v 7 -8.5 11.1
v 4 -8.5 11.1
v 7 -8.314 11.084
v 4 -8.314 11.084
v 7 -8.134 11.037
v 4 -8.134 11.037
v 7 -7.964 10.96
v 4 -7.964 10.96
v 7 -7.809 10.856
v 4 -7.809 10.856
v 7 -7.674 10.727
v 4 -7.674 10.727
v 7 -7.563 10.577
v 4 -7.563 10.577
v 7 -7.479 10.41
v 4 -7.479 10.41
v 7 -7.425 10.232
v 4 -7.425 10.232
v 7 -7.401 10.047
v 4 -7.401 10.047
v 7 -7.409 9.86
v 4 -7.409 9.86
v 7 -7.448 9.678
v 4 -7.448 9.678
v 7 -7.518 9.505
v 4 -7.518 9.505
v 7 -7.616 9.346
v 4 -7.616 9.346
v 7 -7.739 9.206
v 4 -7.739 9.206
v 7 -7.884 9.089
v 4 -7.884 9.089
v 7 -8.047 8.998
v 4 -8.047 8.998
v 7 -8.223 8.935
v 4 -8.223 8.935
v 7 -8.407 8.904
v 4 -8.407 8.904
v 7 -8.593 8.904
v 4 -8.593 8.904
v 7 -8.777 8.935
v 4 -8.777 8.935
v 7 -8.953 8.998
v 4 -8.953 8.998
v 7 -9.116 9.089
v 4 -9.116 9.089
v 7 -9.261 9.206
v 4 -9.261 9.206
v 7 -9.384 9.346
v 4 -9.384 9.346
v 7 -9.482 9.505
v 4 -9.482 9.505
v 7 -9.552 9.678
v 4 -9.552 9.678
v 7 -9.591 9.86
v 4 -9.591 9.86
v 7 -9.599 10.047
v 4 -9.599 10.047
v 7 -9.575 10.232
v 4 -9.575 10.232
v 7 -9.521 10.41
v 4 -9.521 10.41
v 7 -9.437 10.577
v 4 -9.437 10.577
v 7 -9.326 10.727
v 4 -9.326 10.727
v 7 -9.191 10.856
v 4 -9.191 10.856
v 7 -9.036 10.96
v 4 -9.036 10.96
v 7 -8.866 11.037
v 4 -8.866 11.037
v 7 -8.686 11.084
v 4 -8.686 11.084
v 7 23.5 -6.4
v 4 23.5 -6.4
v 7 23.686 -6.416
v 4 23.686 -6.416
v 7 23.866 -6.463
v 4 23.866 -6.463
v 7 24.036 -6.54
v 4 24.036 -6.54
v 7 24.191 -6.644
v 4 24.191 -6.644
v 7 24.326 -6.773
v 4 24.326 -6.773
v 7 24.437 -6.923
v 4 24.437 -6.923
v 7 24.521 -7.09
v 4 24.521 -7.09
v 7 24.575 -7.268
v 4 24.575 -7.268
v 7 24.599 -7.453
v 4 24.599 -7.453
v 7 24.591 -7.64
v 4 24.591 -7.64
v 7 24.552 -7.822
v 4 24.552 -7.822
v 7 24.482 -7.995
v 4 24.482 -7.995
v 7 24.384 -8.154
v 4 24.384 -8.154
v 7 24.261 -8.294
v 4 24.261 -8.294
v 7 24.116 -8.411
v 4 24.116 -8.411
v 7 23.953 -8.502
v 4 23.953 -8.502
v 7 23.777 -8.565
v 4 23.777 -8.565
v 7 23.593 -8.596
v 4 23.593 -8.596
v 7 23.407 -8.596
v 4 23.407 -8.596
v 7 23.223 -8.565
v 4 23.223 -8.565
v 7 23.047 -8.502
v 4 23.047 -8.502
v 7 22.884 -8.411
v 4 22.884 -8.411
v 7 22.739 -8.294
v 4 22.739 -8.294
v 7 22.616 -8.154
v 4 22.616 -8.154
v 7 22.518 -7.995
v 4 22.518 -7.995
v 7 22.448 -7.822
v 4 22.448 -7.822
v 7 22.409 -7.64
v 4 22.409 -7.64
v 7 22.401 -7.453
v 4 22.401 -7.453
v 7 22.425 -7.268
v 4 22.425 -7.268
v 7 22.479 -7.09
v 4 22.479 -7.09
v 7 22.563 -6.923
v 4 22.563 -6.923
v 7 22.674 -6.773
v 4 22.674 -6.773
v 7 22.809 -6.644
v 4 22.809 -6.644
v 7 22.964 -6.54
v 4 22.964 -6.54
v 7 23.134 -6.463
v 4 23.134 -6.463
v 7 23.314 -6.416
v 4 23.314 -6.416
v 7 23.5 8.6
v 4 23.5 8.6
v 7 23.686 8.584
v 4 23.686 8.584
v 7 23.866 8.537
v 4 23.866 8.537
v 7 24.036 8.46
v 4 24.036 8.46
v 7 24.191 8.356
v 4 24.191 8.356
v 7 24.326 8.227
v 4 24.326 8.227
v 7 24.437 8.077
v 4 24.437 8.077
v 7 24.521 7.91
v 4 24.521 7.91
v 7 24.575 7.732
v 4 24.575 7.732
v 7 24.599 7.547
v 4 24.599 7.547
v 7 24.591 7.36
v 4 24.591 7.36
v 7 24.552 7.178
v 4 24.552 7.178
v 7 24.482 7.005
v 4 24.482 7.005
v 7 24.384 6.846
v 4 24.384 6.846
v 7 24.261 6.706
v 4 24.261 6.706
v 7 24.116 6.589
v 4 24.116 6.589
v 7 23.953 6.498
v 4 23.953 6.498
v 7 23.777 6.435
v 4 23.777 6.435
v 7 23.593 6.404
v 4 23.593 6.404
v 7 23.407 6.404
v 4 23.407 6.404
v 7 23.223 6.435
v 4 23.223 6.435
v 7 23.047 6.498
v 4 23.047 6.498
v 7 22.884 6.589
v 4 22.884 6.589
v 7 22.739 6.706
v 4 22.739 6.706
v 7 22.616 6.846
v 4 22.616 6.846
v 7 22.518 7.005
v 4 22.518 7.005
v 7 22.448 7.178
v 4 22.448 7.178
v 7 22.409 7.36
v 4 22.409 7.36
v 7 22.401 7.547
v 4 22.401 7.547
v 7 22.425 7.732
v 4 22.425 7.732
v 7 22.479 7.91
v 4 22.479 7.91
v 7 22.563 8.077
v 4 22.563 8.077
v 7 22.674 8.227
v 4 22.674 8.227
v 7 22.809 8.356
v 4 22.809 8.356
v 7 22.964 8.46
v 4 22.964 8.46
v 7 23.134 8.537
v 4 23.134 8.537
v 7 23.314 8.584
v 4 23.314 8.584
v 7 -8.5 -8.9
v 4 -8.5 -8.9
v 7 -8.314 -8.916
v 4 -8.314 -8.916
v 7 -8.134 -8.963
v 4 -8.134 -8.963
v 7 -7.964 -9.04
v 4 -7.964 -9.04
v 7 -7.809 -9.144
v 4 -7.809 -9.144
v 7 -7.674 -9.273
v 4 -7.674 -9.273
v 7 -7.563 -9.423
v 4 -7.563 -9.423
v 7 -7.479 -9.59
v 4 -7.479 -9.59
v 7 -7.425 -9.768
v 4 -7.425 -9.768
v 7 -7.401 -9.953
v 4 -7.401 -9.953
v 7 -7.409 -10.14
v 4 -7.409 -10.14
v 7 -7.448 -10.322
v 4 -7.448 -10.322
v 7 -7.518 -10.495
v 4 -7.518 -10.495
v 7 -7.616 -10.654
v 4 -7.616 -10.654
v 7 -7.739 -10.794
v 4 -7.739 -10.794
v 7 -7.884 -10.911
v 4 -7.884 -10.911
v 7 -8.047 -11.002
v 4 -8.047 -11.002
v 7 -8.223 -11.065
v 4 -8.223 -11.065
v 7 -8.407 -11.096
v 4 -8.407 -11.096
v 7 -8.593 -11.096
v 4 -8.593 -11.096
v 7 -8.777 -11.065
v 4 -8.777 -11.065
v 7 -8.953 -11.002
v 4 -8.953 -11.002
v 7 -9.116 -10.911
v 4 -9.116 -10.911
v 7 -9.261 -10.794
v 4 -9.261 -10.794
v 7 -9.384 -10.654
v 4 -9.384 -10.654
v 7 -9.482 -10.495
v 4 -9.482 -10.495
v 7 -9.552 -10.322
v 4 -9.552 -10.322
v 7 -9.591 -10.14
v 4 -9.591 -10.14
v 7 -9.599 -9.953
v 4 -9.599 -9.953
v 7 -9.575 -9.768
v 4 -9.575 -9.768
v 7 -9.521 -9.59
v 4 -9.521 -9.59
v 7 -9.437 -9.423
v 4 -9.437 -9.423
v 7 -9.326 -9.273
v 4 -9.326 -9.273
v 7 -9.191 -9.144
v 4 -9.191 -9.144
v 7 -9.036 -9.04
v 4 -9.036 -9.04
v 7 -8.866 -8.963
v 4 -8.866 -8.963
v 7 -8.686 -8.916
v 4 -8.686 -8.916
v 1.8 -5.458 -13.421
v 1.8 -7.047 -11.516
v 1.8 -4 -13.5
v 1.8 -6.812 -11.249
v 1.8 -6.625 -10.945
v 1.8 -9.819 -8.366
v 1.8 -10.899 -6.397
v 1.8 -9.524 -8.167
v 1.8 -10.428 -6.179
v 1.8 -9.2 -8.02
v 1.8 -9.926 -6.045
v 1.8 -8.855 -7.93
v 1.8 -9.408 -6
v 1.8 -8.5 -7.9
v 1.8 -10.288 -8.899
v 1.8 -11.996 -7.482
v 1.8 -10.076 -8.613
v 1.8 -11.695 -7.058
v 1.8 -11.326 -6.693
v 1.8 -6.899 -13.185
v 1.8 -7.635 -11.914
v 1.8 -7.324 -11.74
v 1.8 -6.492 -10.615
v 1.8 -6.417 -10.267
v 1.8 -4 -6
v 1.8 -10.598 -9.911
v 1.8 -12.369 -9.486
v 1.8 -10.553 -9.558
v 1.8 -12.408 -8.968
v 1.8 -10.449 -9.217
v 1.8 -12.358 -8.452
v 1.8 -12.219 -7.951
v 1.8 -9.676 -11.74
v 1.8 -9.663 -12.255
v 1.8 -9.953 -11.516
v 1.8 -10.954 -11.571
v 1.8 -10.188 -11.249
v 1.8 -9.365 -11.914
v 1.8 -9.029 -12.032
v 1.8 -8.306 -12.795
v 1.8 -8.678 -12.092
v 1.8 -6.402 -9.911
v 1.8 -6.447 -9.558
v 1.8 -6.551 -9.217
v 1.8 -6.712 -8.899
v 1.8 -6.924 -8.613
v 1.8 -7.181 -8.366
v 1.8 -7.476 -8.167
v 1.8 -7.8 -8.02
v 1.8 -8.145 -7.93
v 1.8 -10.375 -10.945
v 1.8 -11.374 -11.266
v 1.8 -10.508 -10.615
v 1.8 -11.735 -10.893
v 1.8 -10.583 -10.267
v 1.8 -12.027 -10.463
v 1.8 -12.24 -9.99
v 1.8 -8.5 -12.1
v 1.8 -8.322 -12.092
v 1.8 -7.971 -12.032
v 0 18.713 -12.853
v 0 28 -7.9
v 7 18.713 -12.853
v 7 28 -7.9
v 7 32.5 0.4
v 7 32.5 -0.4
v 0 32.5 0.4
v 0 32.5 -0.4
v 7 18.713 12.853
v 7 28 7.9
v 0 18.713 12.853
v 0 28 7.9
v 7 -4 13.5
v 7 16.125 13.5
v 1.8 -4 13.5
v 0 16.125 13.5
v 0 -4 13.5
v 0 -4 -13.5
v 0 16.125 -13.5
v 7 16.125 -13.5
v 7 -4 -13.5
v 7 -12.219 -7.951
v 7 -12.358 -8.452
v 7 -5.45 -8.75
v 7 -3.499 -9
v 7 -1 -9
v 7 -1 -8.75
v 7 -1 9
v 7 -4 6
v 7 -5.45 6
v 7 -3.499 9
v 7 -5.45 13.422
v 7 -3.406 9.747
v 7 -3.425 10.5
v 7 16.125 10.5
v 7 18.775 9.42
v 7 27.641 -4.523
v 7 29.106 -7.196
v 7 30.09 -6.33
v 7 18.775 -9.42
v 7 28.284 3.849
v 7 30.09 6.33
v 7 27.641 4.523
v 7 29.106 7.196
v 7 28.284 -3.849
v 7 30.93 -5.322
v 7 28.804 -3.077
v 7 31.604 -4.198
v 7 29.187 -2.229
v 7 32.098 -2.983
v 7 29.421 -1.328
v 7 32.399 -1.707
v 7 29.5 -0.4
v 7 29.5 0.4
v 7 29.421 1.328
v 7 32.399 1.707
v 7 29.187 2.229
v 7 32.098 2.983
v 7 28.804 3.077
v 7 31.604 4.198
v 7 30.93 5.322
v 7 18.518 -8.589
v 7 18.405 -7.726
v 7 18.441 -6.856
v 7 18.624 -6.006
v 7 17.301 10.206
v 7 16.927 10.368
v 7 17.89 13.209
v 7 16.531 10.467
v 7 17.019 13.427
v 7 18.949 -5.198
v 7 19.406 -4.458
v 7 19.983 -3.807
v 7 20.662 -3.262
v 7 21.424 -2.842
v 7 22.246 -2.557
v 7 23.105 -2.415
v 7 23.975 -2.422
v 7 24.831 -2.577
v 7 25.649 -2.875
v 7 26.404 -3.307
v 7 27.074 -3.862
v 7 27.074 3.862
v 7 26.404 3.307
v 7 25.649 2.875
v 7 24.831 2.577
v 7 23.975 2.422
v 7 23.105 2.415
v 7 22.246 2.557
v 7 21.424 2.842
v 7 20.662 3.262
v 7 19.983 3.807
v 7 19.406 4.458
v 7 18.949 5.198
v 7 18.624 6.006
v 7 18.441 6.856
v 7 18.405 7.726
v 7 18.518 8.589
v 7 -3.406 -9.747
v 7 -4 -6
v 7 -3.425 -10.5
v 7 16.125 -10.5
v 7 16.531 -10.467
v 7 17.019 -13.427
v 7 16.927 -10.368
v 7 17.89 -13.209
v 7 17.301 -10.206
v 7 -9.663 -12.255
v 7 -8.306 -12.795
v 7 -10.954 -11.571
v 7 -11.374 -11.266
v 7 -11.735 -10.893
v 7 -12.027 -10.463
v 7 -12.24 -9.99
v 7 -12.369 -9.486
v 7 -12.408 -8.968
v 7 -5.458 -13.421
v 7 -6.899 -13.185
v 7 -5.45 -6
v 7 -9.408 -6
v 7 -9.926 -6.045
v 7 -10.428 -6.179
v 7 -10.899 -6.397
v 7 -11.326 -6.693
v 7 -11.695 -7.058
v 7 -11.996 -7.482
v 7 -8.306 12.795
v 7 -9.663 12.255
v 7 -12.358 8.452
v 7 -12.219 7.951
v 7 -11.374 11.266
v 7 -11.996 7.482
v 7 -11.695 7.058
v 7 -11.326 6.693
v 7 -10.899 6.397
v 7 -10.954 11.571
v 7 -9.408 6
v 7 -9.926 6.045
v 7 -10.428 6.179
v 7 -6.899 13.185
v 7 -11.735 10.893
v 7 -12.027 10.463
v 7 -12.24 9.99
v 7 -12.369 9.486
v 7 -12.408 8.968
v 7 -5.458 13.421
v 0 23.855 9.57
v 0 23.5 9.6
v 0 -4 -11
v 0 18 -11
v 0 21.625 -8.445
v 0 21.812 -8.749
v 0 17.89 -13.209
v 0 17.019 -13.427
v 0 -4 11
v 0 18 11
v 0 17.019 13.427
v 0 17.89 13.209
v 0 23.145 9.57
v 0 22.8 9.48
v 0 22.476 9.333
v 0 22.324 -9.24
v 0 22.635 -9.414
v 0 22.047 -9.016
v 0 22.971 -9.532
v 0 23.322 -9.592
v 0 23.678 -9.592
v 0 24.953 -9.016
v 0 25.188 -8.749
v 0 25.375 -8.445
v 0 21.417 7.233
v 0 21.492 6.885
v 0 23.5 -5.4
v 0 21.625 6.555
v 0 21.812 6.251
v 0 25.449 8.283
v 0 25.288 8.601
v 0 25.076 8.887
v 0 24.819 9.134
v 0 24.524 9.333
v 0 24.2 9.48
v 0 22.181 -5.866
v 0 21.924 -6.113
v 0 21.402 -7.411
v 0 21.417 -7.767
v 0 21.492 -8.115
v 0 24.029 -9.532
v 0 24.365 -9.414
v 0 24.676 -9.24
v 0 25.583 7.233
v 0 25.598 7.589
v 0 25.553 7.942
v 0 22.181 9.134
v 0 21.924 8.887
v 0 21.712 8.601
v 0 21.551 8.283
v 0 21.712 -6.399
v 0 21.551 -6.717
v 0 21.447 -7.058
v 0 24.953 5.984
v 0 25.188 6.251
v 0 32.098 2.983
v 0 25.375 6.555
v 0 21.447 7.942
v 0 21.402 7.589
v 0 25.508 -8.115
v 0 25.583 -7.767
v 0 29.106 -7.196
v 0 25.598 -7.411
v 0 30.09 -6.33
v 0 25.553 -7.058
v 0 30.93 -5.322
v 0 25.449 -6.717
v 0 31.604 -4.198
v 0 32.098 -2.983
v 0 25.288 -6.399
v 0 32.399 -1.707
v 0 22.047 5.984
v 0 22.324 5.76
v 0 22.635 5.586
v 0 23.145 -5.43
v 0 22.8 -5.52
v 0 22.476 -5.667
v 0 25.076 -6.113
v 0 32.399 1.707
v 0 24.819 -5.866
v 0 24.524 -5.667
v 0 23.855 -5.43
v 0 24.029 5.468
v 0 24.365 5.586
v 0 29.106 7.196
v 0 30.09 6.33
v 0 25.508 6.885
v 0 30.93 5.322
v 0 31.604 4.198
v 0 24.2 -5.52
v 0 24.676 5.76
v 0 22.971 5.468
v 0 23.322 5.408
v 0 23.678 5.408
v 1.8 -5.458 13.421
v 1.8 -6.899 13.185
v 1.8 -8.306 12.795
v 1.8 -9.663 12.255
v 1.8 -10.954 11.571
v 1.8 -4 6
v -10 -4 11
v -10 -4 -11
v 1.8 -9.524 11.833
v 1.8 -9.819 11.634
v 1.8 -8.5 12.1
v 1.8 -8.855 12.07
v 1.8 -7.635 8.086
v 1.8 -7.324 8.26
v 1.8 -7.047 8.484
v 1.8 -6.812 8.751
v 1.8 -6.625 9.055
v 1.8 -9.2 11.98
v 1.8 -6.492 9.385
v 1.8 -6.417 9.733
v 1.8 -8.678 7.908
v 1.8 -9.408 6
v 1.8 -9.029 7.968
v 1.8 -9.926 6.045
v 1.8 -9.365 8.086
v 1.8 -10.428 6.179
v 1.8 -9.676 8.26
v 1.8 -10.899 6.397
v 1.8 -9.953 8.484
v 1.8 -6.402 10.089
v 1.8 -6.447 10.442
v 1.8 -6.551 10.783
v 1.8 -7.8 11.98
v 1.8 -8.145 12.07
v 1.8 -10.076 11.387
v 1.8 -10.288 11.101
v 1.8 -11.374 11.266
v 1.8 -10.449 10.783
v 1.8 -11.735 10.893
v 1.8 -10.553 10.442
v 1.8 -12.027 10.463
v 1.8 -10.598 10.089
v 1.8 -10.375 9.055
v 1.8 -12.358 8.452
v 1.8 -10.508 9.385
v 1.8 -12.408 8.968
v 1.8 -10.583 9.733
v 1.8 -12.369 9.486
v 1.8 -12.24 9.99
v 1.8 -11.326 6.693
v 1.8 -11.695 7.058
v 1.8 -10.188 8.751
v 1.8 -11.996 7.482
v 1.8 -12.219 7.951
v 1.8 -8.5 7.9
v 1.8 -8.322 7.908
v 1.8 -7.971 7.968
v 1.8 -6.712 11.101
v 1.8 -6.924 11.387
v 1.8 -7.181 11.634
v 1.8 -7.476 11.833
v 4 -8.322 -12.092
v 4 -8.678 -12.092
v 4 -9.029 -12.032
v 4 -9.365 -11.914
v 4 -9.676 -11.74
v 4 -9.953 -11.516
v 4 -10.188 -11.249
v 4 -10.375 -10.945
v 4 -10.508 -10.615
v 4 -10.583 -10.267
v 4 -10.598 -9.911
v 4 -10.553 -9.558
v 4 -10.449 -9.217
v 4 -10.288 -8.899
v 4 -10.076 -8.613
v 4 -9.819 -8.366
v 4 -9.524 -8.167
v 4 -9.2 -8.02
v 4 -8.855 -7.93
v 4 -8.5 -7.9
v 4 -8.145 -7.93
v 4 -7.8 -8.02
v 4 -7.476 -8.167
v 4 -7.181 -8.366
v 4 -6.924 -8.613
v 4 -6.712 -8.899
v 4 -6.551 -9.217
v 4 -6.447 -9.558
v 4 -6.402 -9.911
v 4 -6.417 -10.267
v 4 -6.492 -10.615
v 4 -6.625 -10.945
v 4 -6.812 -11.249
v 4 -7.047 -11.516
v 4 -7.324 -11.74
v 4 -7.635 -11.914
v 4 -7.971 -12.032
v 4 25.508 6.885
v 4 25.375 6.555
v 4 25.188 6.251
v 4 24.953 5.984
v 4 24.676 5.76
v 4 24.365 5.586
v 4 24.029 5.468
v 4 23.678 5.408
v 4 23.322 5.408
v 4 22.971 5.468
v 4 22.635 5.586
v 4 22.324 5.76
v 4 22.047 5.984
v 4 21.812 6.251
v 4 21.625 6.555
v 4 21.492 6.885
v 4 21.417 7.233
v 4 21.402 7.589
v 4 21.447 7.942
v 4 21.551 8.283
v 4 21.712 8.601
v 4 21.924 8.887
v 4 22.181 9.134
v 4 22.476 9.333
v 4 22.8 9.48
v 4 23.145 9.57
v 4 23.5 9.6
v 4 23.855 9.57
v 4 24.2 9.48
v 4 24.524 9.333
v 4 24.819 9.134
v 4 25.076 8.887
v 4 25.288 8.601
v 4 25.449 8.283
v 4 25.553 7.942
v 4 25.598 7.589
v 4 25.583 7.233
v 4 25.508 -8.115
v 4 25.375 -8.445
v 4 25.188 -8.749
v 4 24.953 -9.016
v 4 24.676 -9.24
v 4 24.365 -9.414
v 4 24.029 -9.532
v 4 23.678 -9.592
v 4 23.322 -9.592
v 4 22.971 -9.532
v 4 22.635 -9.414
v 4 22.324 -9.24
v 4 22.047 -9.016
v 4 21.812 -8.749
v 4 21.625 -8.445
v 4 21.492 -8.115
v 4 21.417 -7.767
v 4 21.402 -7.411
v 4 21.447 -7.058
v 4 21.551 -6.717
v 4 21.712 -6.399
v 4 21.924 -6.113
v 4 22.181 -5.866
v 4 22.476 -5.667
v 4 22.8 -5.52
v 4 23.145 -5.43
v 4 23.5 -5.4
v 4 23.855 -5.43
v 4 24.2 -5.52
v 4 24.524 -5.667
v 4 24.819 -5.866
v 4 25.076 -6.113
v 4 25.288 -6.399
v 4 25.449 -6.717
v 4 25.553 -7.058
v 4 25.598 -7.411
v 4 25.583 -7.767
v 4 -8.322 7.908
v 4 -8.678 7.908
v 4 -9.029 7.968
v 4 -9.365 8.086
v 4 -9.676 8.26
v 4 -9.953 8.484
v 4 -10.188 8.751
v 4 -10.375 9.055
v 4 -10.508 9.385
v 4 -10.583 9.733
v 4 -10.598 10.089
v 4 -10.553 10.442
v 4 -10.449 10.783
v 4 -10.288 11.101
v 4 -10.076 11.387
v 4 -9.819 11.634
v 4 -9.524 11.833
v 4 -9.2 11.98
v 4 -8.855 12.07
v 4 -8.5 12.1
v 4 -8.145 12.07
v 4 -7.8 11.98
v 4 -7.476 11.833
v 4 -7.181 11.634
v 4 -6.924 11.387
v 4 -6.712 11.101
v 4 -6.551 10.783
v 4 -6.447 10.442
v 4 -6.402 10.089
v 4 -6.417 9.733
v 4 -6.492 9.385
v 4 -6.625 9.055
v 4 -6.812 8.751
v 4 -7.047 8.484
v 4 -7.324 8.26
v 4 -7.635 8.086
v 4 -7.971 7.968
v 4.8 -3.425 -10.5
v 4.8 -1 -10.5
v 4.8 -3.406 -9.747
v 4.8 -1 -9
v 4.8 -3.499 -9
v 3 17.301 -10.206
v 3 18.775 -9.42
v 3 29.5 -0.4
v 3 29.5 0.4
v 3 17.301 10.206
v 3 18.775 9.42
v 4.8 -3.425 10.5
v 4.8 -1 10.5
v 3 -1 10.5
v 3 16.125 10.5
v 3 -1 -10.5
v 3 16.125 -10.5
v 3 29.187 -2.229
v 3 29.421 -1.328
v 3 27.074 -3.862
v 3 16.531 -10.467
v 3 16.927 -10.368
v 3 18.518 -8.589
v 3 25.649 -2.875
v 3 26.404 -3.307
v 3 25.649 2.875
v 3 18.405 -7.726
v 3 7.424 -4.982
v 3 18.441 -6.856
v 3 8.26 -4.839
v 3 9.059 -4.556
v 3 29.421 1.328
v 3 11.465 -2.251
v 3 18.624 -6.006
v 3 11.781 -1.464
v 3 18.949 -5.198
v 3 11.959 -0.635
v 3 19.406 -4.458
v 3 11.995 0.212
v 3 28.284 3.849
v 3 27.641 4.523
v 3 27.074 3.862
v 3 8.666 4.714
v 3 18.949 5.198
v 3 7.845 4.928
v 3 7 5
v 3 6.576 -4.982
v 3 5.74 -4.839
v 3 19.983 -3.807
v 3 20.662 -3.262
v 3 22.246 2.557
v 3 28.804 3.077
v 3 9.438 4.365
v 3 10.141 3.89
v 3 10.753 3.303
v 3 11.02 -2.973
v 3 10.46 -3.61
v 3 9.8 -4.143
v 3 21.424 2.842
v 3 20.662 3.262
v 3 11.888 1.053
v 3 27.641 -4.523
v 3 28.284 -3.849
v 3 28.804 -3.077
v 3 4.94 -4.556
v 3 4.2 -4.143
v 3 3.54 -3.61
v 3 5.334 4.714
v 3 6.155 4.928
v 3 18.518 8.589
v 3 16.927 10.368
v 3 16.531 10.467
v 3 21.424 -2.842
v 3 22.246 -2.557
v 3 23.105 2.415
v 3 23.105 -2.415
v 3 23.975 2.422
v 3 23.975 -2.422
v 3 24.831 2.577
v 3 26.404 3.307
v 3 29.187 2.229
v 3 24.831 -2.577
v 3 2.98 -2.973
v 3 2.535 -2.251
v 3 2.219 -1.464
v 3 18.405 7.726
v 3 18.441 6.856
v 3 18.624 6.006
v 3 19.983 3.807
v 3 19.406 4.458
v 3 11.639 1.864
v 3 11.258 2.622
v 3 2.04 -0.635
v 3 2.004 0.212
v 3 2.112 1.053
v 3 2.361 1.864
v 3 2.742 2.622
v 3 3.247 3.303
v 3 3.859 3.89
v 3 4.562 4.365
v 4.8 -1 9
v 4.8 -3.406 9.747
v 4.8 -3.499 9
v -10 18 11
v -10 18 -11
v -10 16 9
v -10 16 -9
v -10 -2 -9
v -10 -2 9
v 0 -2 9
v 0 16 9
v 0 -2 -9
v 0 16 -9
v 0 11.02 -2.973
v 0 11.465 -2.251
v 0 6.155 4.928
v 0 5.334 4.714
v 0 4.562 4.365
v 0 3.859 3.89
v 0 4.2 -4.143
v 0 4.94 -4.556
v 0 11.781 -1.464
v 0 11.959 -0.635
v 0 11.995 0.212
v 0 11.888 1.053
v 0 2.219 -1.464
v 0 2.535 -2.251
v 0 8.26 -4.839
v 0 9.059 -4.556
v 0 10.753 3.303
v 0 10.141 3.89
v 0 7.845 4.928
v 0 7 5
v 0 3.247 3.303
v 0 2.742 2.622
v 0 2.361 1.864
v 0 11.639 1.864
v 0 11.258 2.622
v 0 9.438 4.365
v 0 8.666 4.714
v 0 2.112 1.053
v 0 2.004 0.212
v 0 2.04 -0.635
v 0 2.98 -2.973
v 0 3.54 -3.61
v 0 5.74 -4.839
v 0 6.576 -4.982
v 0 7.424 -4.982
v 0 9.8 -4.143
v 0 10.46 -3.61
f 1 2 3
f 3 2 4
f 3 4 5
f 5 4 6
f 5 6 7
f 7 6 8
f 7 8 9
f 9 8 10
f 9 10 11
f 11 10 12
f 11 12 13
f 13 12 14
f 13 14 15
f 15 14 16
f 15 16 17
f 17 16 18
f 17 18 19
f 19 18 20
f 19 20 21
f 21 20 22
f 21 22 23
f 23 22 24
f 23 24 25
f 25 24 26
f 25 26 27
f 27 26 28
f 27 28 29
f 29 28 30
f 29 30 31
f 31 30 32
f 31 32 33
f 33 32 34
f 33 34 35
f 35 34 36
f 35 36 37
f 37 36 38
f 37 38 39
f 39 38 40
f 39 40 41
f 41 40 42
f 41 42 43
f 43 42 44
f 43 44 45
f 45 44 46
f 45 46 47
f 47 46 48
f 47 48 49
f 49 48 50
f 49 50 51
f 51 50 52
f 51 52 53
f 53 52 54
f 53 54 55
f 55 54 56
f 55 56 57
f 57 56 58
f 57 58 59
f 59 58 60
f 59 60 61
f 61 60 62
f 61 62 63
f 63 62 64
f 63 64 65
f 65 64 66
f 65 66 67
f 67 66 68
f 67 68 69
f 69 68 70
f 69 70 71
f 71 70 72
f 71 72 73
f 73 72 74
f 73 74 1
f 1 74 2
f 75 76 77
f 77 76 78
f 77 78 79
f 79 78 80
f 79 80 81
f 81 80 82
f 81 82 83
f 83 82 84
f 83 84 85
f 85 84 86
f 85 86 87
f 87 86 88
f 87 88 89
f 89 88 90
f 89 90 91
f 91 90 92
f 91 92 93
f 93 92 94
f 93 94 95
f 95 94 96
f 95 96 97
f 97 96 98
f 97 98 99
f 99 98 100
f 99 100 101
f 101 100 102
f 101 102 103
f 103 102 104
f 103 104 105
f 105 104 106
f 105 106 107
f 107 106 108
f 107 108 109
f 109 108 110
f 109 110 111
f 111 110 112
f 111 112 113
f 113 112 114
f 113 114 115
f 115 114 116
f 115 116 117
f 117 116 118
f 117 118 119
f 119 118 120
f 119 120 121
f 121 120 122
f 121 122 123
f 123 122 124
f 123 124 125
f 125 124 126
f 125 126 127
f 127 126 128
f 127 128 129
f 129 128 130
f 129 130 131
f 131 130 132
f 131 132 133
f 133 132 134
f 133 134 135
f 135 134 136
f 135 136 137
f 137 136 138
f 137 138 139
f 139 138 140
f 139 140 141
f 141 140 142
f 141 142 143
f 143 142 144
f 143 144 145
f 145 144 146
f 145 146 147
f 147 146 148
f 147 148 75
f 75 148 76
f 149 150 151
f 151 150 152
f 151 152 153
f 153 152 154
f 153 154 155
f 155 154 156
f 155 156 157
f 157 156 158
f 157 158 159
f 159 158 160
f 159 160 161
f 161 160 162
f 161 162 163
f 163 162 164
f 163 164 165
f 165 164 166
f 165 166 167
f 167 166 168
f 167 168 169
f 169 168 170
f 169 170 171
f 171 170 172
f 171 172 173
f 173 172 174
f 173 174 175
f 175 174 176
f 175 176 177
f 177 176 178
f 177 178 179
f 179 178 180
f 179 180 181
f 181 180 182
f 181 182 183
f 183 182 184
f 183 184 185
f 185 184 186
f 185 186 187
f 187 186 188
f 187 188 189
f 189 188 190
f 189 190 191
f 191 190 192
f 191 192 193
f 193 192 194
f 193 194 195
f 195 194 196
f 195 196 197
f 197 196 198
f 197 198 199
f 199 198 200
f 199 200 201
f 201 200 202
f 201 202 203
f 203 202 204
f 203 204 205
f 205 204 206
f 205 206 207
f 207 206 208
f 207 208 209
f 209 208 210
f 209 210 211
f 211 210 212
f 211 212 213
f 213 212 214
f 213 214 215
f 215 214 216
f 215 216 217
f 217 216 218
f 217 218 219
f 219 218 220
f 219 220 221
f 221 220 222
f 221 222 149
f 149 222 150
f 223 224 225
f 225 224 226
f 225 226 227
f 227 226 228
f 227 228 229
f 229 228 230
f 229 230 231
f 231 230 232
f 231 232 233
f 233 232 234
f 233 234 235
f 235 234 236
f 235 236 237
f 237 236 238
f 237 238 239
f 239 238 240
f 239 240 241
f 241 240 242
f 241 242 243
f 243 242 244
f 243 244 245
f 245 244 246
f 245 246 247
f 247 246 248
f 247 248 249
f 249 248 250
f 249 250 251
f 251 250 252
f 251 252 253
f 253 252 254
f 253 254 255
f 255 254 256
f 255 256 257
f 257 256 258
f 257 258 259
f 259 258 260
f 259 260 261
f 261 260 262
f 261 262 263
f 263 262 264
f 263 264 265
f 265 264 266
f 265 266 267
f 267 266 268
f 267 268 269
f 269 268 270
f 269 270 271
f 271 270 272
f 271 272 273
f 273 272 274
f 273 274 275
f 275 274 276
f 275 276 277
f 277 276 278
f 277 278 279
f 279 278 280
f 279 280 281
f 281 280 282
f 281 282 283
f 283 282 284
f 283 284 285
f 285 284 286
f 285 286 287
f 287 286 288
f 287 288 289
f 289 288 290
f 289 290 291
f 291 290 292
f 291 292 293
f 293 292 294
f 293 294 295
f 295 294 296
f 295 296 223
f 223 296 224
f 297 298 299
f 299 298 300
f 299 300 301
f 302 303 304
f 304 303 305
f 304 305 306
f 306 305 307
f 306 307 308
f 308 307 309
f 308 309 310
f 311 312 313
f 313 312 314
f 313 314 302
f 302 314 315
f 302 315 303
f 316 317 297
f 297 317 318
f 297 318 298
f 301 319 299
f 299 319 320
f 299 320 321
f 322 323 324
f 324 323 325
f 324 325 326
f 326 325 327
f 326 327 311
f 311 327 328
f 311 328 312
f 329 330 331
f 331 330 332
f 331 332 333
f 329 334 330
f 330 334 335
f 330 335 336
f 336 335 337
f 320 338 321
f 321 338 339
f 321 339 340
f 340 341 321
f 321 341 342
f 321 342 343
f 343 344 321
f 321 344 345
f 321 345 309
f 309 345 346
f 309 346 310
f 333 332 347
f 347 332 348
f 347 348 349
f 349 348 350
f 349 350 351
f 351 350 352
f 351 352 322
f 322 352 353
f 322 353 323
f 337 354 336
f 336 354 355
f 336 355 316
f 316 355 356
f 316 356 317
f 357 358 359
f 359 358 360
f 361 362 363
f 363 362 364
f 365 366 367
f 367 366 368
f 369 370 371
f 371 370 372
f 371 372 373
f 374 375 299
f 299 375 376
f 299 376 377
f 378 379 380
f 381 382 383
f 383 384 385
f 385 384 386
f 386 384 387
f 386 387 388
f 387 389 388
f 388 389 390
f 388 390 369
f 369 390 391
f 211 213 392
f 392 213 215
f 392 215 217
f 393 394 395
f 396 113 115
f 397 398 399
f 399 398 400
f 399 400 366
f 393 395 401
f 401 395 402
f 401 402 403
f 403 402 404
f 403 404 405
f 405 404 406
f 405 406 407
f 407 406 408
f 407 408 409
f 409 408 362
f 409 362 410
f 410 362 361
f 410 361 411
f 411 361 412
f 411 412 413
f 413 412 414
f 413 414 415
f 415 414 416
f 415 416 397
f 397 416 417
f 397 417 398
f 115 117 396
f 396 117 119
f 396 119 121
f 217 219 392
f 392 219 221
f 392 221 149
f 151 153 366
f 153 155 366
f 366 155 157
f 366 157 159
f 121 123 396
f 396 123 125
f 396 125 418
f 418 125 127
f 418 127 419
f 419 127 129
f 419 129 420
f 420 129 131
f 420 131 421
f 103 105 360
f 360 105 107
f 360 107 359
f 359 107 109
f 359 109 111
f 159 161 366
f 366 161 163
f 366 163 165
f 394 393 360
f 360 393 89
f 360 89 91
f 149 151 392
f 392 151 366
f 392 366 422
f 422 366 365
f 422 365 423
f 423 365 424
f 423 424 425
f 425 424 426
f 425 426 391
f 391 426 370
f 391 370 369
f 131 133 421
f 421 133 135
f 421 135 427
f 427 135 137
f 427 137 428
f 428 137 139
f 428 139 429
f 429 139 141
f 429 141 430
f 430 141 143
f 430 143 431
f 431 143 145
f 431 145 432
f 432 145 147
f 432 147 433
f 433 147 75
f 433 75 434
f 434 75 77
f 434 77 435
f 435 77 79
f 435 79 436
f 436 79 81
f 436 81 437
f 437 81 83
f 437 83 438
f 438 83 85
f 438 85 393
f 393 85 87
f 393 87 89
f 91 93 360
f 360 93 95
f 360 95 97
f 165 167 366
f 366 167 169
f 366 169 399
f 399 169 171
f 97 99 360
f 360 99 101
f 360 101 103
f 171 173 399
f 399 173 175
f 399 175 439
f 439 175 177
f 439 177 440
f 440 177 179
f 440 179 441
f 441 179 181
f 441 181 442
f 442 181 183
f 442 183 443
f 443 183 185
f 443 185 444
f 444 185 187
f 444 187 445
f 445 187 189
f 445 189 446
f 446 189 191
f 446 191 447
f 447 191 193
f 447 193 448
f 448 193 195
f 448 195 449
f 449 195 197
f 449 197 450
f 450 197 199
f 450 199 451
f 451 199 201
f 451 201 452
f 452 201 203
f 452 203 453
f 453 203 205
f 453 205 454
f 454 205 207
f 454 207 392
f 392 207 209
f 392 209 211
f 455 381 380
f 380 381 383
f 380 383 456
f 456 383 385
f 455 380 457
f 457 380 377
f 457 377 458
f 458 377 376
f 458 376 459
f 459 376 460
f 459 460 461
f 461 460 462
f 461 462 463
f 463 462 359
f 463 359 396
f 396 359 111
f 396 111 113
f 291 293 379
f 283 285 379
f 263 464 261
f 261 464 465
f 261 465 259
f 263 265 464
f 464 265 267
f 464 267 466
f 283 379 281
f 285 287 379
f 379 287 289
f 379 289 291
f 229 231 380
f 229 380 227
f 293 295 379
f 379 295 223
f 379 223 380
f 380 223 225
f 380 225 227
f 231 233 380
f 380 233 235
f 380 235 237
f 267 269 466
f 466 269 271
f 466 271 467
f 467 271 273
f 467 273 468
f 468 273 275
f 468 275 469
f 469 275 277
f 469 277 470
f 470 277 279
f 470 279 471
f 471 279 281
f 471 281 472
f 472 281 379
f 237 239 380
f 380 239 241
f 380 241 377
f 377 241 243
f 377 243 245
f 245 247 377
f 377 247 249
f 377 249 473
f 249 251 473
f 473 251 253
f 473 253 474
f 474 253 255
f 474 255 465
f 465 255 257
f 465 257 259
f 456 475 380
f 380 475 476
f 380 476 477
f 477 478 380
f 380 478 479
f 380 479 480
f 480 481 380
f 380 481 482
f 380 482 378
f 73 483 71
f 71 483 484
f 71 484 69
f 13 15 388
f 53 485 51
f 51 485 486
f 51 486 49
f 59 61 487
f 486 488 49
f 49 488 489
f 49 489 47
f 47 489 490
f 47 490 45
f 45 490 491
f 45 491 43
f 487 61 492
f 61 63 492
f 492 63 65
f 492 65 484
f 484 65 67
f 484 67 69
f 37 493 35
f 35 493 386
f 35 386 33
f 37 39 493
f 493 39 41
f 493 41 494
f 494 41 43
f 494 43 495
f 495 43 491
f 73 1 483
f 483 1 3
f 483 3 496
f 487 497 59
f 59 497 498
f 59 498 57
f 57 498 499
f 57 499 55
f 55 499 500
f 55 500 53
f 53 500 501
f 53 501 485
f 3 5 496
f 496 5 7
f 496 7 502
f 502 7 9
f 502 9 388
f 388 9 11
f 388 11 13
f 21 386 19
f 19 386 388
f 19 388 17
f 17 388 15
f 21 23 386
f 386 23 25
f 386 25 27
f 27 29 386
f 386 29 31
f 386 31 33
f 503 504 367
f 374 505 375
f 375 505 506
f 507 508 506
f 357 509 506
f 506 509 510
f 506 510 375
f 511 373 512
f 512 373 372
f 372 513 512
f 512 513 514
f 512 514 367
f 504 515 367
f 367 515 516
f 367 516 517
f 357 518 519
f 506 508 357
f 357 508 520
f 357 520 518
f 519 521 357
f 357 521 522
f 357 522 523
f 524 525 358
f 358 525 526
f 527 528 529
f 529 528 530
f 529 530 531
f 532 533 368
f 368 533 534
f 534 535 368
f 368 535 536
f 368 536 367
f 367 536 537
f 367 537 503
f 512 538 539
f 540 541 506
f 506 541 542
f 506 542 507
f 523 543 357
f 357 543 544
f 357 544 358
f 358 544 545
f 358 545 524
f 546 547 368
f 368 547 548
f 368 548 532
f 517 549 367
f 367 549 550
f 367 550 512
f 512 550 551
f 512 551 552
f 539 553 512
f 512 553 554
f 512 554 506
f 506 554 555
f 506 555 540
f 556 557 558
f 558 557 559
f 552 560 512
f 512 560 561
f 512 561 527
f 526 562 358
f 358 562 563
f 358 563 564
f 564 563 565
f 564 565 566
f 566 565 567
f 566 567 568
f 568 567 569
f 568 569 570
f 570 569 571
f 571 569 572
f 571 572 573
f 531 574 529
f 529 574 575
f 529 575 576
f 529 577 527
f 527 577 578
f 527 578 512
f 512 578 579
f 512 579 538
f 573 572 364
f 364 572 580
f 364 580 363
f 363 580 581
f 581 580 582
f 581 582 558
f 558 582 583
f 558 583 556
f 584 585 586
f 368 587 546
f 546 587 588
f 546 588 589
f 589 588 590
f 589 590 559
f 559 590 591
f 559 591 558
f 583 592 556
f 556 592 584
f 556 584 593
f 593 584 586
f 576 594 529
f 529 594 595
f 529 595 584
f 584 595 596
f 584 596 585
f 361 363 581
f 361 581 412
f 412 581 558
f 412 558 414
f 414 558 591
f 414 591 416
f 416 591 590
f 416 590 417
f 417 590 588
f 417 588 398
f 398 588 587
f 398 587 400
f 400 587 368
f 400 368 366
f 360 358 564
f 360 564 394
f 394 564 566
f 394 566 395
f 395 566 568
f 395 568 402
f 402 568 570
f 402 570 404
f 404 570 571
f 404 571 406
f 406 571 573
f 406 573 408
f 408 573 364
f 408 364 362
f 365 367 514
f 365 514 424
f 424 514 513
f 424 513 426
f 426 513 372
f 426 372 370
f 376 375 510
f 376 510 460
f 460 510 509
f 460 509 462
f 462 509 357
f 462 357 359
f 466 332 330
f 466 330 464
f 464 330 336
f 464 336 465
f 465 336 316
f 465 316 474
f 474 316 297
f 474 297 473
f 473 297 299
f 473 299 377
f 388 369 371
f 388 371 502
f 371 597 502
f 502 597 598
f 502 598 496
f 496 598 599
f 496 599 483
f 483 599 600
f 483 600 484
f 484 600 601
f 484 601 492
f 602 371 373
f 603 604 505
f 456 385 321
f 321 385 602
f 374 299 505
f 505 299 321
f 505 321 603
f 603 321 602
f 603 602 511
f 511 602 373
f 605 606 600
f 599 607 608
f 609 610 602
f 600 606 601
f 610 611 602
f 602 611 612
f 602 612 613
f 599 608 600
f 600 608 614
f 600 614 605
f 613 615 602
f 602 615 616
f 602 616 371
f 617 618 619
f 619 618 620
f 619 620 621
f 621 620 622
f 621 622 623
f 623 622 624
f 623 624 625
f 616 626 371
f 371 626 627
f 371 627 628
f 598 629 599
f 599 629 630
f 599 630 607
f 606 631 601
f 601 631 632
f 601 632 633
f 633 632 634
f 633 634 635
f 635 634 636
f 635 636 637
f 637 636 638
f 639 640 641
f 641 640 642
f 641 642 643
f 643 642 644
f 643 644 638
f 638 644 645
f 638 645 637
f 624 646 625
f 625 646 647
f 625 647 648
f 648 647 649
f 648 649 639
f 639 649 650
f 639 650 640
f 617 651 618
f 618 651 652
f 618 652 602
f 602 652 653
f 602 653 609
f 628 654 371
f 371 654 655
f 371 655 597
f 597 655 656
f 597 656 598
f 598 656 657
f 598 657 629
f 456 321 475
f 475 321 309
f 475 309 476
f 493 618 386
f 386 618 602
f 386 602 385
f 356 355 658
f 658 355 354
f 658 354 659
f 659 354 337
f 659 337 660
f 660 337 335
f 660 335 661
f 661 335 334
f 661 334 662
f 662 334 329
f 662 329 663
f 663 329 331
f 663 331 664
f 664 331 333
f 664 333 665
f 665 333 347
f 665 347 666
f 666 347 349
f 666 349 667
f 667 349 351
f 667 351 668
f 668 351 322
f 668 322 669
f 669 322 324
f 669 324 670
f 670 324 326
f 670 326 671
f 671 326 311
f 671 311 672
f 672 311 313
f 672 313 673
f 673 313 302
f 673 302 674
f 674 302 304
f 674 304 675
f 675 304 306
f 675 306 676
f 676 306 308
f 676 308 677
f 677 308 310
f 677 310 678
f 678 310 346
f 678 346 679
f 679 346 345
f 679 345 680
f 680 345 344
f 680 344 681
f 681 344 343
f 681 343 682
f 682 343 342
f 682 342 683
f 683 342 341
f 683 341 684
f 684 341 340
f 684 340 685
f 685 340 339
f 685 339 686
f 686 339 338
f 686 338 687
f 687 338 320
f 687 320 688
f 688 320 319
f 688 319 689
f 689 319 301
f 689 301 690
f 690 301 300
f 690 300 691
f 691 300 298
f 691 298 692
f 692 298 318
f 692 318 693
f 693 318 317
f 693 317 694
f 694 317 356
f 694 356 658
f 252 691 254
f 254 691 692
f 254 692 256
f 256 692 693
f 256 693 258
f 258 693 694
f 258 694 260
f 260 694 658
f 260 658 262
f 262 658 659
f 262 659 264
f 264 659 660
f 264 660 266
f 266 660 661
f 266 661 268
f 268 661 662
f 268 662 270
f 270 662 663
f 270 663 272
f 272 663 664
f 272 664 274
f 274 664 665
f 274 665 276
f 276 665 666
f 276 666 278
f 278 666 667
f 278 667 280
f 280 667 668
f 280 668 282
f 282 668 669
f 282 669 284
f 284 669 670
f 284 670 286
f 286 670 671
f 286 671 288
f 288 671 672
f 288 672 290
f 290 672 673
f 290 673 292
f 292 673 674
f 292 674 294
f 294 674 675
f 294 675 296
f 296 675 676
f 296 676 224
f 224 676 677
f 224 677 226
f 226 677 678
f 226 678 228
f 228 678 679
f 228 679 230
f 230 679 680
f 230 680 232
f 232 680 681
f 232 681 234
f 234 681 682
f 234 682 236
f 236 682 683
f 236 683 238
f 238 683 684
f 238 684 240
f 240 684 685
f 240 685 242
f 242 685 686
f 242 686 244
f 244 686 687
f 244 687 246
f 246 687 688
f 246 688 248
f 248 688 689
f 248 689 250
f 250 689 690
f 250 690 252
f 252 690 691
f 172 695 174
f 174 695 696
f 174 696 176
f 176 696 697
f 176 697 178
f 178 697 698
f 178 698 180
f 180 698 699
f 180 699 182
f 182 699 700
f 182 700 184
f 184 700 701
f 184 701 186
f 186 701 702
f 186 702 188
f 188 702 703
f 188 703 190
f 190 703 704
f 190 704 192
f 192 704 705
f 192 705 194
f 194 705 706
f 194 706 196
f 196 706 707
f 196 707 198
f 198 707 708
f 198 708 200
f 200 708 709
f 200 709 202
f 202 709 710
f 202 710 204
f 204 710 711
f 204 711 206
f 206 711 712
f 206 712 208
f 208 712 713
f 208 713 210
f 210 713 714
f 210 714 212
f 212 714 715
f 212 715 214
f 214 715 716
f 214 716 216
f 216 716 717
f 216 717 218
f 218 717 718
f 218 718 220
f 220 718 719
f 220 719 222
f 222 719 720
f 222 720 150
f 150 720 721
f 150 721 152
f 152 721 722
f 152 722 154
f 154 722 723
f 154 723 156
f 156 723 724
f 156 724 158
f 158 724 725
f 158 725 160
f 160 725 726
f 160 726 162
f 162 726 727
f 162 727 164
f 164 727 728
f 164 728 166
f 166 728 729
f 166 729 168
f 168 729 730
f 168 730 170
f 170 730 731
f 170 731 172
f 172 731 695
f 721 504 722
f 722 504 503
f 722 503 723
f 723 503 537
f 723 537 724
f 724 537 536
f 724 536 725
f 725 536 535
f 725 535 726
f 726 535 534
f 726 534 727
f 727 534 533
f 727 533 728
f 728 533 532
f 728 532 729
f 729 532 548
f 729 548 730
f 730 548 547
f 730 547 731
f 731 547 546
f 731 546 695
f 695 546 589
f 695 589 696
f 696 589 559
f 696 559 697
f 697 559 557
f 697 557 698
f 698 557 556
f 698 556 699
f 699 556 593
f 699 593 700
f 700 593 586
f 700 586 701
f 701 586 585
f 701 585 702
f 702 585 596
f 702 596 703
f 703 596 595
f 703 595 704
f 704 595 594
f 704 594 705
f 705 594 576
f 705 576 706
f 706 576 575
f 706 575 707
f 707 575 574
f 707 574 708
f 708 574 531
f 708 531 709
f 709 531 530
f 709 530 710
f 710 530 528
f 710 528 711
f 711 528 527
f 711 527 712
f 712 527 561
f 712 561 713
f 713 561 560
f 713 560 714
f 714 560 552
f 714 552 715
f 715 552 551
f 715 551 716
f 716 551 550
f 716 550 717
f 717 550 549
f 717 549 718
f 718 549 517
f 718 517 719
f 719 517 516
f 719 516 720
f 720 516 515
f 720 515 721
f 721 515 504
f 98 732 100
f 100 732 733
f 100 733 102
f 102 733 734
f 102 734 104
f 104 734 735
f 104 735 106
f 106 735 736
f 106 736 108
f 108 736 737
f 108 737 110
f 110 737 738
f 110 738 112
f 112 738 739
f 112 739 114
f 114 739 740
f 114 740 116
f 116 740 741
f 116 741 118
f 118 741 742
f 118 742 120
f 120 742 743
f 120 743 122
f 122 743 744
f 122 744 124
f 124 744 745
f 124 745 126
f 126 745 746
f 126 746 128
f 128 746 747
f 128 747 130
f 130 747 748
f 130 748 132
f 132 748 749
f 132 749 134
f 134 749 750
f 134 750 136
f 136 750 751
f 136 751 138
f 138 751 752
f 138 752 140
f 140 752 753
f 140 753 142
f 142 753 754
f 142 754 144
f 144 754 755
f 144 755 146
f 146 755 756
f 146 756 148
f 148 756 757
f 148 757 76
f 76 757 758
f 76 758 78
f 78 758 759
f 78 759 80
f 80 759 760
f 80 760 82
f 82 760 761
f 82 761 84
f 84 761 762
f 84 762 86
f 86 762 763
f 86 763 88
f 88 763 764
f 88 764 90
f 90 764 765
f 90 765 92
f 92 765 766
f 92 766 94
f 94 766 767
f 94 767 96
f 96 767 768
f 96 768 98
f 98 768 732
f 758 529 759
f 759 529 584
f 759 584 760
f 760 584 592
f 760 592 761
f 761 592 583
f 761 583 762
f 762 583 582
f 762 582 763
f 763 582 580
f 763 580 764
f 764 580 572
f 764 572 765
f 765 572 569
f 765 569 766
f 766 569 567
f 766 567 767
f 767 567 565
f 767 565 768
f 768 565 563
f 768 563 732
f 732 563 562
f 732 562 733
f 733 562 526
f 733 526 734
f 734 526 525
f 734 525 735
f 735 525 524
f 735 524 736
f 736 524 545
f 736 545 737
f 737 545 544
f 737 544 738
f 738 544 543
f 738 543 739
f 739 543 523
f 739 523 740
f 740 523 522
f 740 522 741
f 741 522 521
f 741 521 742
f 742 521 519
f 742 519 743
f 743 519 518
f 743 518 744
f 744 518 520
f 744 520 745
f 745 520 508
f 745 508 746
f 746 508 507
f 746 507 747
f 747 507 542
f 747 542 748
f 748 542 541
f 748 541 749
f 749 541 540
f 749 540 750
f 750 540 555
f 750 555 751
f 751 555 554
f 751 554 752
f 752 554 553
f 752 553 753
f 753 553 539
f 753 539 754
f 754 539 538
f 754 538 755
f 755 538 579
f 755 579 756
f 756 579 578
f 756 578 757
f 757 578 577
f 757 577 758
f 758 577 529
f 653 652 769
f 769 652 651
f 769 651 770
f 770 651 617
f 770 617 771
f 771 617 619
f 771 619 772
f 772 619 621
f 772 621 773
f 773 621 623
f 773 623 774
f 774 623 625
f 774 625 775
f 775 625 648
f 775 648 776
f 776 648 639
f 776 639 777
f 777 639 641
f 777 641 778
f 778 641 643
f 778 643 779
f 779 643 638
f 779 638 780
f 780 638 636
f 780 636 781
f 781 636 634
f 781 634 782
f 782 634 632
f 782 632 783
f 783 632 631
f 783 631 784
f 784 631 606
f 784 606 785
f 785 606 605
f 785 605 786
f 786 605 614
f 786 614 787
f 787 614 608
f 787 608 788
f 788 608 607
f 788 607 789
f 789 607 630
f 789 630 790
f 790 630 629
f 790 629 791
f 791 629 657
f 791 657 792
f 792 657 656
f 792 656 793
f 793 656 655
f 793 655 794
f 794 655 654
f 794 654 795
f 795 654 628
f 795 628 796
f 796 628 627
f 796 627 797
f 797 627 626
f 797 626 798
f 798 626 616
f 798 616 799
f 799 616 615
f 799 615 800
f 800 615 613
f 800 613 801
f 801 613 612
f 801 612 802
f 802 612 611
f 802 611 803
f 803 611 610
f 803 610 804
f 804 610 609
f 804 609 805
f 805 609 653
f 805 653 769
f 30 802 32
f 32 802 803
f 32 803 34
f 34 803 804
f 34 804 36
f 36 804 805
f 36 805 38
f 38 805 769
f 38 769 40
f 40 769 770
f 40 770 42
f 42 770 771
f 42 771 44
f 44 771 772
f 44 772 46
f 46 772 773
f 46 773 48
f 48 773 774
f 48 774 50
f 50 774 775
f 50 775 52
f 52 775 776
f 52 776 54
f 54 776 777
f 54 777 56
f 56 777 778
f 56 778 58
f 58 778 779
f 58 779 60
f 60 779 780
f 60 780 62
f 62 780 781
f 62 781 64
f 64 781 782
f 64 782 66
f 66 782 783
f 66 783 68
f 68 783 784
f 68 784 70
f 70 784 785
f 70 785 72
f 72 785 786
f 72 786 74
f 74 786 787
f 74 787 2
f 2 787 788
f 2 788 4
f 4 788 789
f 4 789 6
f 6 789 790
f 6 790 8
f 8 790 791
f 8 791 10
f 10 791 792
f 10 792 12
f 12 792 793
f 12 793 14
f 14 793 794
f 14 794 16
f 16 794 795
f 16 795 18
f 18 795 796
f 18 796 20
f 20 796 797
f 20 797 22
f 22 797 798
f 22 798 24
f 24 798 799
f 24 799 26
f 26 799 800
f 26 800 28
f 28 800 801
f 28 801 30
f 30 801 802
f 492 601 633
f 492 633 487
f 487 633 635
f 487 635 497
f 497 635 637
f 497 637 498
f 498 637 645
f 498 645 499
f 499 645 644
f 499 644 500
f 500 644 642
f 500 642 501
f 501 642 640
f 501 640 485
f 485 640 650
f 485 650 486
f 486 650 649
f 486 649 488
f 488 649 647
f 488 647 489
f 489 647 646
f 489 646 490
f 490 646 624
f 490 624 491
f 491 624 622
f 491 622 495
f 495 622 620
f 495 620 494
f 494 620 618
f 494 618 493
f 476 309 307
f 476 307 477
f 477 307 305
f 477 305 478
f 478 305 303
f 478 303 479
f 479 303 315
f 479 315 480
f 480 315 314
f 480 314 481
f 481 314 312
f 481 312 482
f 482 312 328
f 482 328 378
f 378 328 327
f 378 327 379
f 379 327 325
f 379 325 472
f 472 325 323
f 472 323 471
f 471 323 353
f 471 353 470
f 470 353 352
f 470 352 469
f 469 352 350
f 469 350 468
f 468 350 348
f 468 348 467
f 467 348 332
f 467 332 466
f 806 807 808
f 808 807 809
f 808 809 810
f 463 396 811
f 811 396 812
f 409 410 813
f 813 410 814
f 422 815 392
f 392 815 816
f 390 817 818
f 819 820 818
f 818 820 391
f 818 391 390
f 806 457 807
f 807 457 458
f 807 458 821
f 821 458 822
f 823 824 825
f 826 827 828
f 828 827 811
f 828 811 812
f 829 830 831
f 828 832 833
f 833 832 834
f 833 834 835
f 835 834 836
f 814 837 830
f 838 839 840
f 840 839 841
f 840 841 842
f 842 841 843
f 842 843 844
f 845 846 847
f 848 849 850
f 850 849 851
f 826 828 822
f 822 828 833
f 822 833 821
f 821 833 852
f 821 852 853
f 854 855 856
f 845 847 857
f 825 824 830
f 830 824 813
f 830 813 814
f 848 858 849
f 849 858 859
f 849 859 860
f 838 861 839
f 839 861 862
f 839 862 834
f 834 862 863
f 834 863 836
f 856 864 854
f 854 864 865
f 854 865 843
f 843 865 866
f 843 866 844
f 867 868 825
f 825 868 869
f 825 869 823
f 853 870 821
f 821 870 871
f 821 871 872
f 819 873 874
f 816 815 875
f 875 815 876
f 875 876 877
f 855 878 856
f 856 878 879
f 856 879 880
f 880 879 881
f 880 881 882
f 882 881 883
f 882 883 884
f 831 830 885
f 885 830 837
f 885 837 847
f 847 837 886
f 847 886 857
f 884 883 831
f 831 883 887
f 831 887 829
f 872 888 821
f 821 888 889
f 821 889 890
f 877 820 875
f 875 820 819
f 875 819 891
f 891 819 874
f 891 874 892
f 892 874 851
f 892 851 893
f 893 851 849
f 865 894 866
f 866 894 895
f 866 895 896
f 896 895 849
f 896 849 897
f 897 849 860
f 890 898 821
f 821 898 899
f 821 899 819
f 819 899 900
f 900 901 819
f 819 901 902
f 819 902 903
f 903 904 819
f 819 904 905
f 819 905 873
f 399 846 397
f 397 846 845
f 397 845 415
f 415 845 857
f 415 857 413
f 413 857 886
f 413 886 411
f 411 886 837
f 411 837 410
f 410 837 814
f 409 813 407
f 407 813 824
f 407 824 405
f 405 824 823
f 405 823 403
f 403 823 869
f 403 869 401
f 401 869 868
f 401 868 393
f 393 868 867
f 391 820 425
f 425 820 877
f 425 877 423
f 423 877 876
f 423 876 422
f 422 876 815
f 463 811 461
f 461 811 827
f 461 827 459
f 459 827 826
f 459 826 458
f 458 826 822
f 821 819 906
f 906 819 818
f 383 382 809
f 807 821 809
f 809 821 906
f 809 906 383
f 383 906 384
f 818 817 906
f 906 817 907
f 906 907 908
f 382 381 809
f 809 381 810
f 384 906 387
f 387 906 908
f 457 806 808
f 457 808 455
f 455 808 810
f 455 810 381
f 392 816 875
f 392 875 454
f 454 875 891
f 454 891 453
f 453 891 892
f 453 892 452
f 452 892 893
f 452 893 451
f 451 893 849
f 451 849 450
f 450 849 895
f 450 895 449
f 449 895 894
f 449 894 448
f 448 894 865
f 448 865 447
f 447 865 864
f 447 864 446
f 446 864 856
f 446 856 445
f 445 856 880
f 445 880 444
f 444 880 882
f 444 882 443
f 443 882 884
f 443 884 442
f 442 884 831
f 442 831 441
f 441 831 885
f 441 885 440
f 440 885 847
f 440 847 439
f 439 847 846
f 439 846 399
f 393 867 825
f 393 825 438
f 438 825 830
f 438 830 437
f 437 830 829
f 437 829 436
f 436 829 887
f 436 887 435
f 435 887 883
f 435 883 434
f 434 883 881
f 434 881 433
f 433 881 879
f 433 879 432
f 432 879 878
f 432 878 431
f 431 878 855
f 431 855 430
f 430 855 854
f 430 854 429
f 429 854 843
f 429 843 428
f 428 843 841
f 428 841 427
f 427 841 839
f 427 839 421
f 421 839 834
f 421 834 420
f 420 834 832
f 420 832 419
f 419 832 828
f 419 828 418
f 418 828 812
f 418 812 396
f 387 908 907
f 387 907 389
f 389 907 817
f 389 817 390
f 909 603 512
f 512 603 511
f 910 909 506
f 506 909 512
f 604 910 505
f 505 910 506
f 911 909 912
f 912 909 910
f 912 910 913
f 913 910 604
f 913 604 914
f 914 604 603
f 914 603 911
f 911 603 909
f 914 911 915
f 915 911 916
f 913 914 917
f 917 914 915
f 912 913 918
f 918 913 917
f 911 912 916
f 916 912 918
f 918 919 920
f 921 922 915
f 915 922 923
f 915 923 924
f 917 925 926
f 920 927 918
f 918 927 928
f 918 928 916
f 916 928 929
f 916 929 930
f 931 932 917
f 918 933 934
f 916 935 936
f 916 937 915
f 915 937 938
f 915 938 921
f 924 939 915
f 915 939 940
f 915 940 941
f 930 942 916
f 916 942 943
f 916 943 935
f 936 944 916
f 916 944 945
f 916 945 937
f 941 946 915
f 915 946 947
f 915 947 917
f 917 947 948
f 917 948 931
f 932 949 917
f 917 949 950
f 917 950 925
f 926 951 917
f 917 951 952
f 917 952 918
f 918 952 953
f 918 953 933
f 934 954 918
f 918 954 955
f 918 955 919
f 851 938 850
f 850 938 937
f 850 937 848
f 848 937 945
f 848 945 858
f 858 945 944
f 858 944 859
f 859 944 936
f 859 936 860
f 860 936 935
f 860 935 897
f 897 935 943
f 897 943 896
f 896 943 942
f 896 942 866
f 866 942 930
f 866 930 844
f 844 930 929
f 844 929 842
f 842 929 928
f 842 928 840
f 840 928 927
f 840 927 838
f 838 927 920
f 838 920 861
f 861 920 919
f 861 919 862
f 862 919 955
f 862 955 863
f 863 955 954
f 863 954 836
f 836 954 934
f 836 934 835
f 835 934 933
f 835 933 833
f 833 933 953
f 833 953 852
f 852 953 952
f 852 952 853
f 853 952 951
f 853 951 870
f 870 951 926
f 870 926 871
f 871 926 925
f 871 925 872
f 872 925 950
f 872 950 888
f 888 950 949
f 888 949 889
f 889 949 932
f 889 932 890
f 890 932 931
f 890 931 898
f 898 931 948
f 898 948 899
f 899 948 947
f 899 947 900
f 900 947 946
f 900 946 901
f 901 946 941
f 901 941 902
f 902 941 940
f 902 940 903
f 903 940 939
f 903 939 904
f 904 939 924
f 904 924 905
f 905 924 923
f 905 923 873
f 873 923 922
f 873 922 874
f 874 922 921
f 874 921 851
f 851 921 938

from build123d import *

# Parameters (mm, degrees)
BOSS_EXTRUDE1_DEPTH = 7
FILLET1_R           = 8.5
FILLET2_R           = 5.5
FILLET3_R           = 13.5
SKETCH3_W           = 27
SKETCH3_H           = 13.5
CUT_EXTRUDE1_DEPTH  = 1.8
CUT_EXTRUDE5_REACH  = 37.882
SKETCH12_W          = 12
SKETCH12_H          = 13.5
CUT_EXTRUDE6_REACH  = 37.882
SKETCH13_R          = 1.1
SKETCH17_R          = 2.1
CUT_EXTRUDE14_DEPTH = 4
FILLET4_R           = 3
SHELL2_START        = 3
SHELL2_DEPTH        = 4
SHELL2_START_2      = 4.8
SHELL2_2_DEPTH      = 2.2
SKETCH18_W          = 22
SKETCH18_H          = 22
BOSS_EXTRUDE2_DEPTH = 10
SKETCH19_W          = 18
SKETCH19_H          = 18
CUT_EXTRUDE15_DEPTH = 10
SKETCH20_R          = 5
CUT_EXTRUDE16_DEPTH = 3


# Read off the part's stored shape, not the designer's step: Shell2
with BuildPart() as part:
    # Sketch2 → Boss-Extrude1 (new body)
    with BuildSketch(Plane(origin=(0, 0, 0), x_dir=(0, 0, -1), z_dir=(1, 0, 0))):
        Polygon((-13.5, -17.5), (13.5, -17.5), (13.5, 17.5), (5.5, 32.5), (-5.5, 32.5), (-13.5, 17.5), align=None)
    extrude(amount=BOSS_EXTRUDE1_DEPTH)

    # Fillet1
    fillet1_edges = [part.edges().sort_by_distance(p)[0] for p in [
        (3.5, 32.5, 5.5),
        (3.5, 32.5, -5.5),
    ]]
    fillet(fillet1_edges, radius=FILLET1_R)

    # Fillet2
    fillet2_edges = [part.edges().sort_by_distance(p)[0] for p in [
        (3.5, 17.5, -13.5),
        (3.5, 17.5, 13.5),
    ]]
    fillet(fillet2_edges, radius=FILLET2_R)

    # Fillet3
    fillet3_edges = [part.edges().sort_by_distance(p)[0] for p in [
        (3.5, -17.5, 13.5),
        (3.5, -17.5, -13.5),
    ]]
    fillet(fillet3_edges, radius=FILLET3_R - 0.0001)  # a hair under: the kernel refuses the full size

    # Sketch3 → Cut-Extrude1 (cut)
    with BuildSketch(Plane.ZY):
        with Locations((0, -10.75)):
            Rectangle(SKETCH3_W, SKETCH3_H)
    extrude(amount=-CUT_EXTRUDE1_DEPTH, mode=Mode.SUBTRACT)

    # Sketch12 → Cut-Extrude5 (cut, up to next)
    with BuildSketch(Plane(origin=(7, 0, 0), x_dir=(0, 0, -1), z_dir=(1, 0, 0)), mode=Mode.PRIVATE) as cut_extrude5_sk1:
        with Locations((0, -10.75)):
            Rectangle(SKETCH12_W, SKETCH12_H)
    cut_extrude5_tool1 = extrude(cut_extrude5_sk1.sketch, amount=-CUT_EXTRUDE5_REACH, mode=Mode.PRIVATE) & part.part
    add(cut_extrude5_tool1.solids().sort_by_distance((7, -10.75, 0))[0], mode=Mode.SUBTRACT)

    # Sketch13 → Cut-Extrude6 (cut, up to next)
    with BuildSketch(Plane.ZY, mode=Mode.PRIVATE) as cut_extrude6_sk1:
        with Locations((-7.5, 23.5)):
            Circle(SKETCH13_R)
    cut_extrude6_tool1 = extrude(cut_extrude6_sk1.sketch, amount=-CUT_EXTRUDE6_REACH, mode=Mode.PRIVATE) & part.part
    # Sketch13 → Cut-Extrude6 (cut, up to next)
    with BuildSketch(Plane.ZY, mode=Mode.PRIVATE) as cut_extrude6_sk2:
        with Locations((-10, -8.5)):
            Circle(SKETCH13_R)
    cut_extrude6_tool2 = extrude(cut_extrude6_sk2.sketch, amount=-CUT_EXTRUDE6_REACH, mode=Mode.PRIVATE) & part.part
    # Sketch13 → Cut-Extrude6 (cut, up to next)
    with BuildSketch(Plane.ZY, mode=Mode.PRIVATE) as cut_extrude6_sk3:
        with Locations((10, -8.5)):
            Circle(SKETCH13_R)
    cut_extrude6_tool3 = extrude(cut_extrude6_sk3.sketch, amount=-CUT_EXTRUDE6_REACH, mode=Mode.PRIVATE) & part.part
    # Sketch13 → Cut-Extrude6 (cut, up to next)
    with BuildSketch(Plane.ZY, mode=Mode.PRIVATE) as cut_extrude6_sk4:
        with Locations((7.5, 23.5)):
            Circle(SKETCH13_R)
    cut_extrude6_tool4 = extrude(cut_extrude6_sk4.sketch, amount=-CUT_EXTRUDE6_REACH, mode=Mode.PRIVATE) & part.part
    add(cut_extrude6_tool1.solids().sort_by_distance((0, 23.5, -7.5))[0], mode=Mode.SUBTRACT)
    add(cut_extrude6_tool2.solids().sort_by_distance((0, -8.5, -10))[0], mode=Mode.SUBTRACT)
    add(cut_extrude6_tool3.solids().sort_by_distance((0, -8.5, 10))[0], mode=Mode.SUBTRACT)
    add(cut_extrude6_tool4.solids().sort_by_distance((0, 23.5, 7.5))[0], mode=Mode.SUBTRACT)

    # Sketch17 → Cut-Extrude14 (cut)
    with BuildSketch(Plane.ZY):
        with Locations((-7.5, 23.5)):
            Circle(SKETCH17_R)
        with Locations((7.5, 23.5)):
            Circle(SKETCH17_R)
        with Locations((-10, -8.5)):
            Circle(SKETCH17_R)
        with Locations((10, -8.5)):
            Circle(SKETCH17_R)
    extrude(amount=-CUT_EXTRUDE14_DEPTH, mode=Mode.SUBTRACT)

    # Fillet4
    fillet4_edges = [part.edges().sort_by_distance(p)[0] for p in [
        (4.4, -16.093424605, -6),
        (4.4, -16.093424605, 6),
    ]]
    fillet(fillet4_edges, radius=FILLET4_R)

    # Shell2 outline → Shell2 (cut)
    with BuildSketch(Plane.YZ.offset(SHELL2_START)):
        with BuildLine():
            Line((17.301470588, -10.205882353), (18.775176121, -9.419906069))
            ThreePointArc((18.775176121, -9.419906069), (21.033978224, -3.035838645), (27.640649185, -4.522580929))
            ThreePointArc((27.640649185, -4.522580929), (29.013659867, -2.661241858), (29.5, -0.4))
            Line((29.5, -0.4), (29.5, 0.4))
            ThreePointArc((29.5, 0.4), (29.013659867, 2.661241858), (27.640649185, 4.522580929))
            ThreePointArc((27.640649185, 4.522580929), (21.033978224, 3.035838645), (18.775176121, 9.419906069))
            Line((18.775176121, 9.419906069), (17.301470588, 10.205882353))
            ThreePointArc((17.301470588, 10.205882353), (16.731339062, 10.42535625), (16.125, 10.5))
            Line((16.125, 10.5), (-1, 10.5))
            Line((-1, 10.5), (-1, -10.5))
            Line((-1, -10.5), (16.125, -10.5))
            ThreePointArc((16.125, -10.5), (16.731339062, -10.42535625), (17.301470588, -10.205882353))
        make_face()
    extrude(amount=SHELL2_DEPTH, mode=Mode.SUBTRACT)

    # Shell2 2 outline → Shell2 2 (cut)
    with BuildSketch(Plane.YZ.offset(SHELL2_START_2)):
        with BuildLine():
            Line((-3.424568984, -10.5), (-1, -10.5))
            Line((-1, -10.5), (-1, -9))
            Line((-1, -9), (-3.4990001, -9))
            ThreePointArc((-3.4990001, -9), (-3.406267086, -9.747245183), (-3.424568984, -10.5))
        make_face()
        with BuildLine():
            Line((-3.4990001, 9), (-1, 9))
            Line((-1, 9), (-1, 10.5))
            Line((-1, 10.5), (-3.424568984, 10.5))
            ThreePointArc((-3.424568984, 10.5), (-3.406267086, 9.747245183), (-3.4990001, 9))
        make_face()
    extrude(amount=SHELL2_2_DEPTH, mode=Mode.SUBTRACT)

    # Sketch18 → Boss-Extrude2 (add)
    with BuildSketch(Plane.ZY):
        with Locations((0, 7)):
            Rectangle(SKETCH18_W, SKETCH18_H)
    extrude(amount=BOSS_EXTRUDE2_DEPTH)

    # Sketch19 → Cut-Extrude15 (cut)
    with BuildSketch(Plane.ZY.offset(10)):
        with Locations((0, 7)):
            Rectangle(SKETCH19_W, SKETCH19_H)
    extrude(amount=-CUT_EXTRUDE15_DEPTH, mode=Mode.SUBTRACT)

    # Sketch20 → Cut-Extrude16 (cut)
    with BuildSketch(Plane.ZY):
        with Locations((0, 7)):
            Circle(SKETCH20_R)
    extrude(amount=-CUT_EXTRUDE16_DEPTH, mode=Mode.SUBTRACT)


solid = part.part
